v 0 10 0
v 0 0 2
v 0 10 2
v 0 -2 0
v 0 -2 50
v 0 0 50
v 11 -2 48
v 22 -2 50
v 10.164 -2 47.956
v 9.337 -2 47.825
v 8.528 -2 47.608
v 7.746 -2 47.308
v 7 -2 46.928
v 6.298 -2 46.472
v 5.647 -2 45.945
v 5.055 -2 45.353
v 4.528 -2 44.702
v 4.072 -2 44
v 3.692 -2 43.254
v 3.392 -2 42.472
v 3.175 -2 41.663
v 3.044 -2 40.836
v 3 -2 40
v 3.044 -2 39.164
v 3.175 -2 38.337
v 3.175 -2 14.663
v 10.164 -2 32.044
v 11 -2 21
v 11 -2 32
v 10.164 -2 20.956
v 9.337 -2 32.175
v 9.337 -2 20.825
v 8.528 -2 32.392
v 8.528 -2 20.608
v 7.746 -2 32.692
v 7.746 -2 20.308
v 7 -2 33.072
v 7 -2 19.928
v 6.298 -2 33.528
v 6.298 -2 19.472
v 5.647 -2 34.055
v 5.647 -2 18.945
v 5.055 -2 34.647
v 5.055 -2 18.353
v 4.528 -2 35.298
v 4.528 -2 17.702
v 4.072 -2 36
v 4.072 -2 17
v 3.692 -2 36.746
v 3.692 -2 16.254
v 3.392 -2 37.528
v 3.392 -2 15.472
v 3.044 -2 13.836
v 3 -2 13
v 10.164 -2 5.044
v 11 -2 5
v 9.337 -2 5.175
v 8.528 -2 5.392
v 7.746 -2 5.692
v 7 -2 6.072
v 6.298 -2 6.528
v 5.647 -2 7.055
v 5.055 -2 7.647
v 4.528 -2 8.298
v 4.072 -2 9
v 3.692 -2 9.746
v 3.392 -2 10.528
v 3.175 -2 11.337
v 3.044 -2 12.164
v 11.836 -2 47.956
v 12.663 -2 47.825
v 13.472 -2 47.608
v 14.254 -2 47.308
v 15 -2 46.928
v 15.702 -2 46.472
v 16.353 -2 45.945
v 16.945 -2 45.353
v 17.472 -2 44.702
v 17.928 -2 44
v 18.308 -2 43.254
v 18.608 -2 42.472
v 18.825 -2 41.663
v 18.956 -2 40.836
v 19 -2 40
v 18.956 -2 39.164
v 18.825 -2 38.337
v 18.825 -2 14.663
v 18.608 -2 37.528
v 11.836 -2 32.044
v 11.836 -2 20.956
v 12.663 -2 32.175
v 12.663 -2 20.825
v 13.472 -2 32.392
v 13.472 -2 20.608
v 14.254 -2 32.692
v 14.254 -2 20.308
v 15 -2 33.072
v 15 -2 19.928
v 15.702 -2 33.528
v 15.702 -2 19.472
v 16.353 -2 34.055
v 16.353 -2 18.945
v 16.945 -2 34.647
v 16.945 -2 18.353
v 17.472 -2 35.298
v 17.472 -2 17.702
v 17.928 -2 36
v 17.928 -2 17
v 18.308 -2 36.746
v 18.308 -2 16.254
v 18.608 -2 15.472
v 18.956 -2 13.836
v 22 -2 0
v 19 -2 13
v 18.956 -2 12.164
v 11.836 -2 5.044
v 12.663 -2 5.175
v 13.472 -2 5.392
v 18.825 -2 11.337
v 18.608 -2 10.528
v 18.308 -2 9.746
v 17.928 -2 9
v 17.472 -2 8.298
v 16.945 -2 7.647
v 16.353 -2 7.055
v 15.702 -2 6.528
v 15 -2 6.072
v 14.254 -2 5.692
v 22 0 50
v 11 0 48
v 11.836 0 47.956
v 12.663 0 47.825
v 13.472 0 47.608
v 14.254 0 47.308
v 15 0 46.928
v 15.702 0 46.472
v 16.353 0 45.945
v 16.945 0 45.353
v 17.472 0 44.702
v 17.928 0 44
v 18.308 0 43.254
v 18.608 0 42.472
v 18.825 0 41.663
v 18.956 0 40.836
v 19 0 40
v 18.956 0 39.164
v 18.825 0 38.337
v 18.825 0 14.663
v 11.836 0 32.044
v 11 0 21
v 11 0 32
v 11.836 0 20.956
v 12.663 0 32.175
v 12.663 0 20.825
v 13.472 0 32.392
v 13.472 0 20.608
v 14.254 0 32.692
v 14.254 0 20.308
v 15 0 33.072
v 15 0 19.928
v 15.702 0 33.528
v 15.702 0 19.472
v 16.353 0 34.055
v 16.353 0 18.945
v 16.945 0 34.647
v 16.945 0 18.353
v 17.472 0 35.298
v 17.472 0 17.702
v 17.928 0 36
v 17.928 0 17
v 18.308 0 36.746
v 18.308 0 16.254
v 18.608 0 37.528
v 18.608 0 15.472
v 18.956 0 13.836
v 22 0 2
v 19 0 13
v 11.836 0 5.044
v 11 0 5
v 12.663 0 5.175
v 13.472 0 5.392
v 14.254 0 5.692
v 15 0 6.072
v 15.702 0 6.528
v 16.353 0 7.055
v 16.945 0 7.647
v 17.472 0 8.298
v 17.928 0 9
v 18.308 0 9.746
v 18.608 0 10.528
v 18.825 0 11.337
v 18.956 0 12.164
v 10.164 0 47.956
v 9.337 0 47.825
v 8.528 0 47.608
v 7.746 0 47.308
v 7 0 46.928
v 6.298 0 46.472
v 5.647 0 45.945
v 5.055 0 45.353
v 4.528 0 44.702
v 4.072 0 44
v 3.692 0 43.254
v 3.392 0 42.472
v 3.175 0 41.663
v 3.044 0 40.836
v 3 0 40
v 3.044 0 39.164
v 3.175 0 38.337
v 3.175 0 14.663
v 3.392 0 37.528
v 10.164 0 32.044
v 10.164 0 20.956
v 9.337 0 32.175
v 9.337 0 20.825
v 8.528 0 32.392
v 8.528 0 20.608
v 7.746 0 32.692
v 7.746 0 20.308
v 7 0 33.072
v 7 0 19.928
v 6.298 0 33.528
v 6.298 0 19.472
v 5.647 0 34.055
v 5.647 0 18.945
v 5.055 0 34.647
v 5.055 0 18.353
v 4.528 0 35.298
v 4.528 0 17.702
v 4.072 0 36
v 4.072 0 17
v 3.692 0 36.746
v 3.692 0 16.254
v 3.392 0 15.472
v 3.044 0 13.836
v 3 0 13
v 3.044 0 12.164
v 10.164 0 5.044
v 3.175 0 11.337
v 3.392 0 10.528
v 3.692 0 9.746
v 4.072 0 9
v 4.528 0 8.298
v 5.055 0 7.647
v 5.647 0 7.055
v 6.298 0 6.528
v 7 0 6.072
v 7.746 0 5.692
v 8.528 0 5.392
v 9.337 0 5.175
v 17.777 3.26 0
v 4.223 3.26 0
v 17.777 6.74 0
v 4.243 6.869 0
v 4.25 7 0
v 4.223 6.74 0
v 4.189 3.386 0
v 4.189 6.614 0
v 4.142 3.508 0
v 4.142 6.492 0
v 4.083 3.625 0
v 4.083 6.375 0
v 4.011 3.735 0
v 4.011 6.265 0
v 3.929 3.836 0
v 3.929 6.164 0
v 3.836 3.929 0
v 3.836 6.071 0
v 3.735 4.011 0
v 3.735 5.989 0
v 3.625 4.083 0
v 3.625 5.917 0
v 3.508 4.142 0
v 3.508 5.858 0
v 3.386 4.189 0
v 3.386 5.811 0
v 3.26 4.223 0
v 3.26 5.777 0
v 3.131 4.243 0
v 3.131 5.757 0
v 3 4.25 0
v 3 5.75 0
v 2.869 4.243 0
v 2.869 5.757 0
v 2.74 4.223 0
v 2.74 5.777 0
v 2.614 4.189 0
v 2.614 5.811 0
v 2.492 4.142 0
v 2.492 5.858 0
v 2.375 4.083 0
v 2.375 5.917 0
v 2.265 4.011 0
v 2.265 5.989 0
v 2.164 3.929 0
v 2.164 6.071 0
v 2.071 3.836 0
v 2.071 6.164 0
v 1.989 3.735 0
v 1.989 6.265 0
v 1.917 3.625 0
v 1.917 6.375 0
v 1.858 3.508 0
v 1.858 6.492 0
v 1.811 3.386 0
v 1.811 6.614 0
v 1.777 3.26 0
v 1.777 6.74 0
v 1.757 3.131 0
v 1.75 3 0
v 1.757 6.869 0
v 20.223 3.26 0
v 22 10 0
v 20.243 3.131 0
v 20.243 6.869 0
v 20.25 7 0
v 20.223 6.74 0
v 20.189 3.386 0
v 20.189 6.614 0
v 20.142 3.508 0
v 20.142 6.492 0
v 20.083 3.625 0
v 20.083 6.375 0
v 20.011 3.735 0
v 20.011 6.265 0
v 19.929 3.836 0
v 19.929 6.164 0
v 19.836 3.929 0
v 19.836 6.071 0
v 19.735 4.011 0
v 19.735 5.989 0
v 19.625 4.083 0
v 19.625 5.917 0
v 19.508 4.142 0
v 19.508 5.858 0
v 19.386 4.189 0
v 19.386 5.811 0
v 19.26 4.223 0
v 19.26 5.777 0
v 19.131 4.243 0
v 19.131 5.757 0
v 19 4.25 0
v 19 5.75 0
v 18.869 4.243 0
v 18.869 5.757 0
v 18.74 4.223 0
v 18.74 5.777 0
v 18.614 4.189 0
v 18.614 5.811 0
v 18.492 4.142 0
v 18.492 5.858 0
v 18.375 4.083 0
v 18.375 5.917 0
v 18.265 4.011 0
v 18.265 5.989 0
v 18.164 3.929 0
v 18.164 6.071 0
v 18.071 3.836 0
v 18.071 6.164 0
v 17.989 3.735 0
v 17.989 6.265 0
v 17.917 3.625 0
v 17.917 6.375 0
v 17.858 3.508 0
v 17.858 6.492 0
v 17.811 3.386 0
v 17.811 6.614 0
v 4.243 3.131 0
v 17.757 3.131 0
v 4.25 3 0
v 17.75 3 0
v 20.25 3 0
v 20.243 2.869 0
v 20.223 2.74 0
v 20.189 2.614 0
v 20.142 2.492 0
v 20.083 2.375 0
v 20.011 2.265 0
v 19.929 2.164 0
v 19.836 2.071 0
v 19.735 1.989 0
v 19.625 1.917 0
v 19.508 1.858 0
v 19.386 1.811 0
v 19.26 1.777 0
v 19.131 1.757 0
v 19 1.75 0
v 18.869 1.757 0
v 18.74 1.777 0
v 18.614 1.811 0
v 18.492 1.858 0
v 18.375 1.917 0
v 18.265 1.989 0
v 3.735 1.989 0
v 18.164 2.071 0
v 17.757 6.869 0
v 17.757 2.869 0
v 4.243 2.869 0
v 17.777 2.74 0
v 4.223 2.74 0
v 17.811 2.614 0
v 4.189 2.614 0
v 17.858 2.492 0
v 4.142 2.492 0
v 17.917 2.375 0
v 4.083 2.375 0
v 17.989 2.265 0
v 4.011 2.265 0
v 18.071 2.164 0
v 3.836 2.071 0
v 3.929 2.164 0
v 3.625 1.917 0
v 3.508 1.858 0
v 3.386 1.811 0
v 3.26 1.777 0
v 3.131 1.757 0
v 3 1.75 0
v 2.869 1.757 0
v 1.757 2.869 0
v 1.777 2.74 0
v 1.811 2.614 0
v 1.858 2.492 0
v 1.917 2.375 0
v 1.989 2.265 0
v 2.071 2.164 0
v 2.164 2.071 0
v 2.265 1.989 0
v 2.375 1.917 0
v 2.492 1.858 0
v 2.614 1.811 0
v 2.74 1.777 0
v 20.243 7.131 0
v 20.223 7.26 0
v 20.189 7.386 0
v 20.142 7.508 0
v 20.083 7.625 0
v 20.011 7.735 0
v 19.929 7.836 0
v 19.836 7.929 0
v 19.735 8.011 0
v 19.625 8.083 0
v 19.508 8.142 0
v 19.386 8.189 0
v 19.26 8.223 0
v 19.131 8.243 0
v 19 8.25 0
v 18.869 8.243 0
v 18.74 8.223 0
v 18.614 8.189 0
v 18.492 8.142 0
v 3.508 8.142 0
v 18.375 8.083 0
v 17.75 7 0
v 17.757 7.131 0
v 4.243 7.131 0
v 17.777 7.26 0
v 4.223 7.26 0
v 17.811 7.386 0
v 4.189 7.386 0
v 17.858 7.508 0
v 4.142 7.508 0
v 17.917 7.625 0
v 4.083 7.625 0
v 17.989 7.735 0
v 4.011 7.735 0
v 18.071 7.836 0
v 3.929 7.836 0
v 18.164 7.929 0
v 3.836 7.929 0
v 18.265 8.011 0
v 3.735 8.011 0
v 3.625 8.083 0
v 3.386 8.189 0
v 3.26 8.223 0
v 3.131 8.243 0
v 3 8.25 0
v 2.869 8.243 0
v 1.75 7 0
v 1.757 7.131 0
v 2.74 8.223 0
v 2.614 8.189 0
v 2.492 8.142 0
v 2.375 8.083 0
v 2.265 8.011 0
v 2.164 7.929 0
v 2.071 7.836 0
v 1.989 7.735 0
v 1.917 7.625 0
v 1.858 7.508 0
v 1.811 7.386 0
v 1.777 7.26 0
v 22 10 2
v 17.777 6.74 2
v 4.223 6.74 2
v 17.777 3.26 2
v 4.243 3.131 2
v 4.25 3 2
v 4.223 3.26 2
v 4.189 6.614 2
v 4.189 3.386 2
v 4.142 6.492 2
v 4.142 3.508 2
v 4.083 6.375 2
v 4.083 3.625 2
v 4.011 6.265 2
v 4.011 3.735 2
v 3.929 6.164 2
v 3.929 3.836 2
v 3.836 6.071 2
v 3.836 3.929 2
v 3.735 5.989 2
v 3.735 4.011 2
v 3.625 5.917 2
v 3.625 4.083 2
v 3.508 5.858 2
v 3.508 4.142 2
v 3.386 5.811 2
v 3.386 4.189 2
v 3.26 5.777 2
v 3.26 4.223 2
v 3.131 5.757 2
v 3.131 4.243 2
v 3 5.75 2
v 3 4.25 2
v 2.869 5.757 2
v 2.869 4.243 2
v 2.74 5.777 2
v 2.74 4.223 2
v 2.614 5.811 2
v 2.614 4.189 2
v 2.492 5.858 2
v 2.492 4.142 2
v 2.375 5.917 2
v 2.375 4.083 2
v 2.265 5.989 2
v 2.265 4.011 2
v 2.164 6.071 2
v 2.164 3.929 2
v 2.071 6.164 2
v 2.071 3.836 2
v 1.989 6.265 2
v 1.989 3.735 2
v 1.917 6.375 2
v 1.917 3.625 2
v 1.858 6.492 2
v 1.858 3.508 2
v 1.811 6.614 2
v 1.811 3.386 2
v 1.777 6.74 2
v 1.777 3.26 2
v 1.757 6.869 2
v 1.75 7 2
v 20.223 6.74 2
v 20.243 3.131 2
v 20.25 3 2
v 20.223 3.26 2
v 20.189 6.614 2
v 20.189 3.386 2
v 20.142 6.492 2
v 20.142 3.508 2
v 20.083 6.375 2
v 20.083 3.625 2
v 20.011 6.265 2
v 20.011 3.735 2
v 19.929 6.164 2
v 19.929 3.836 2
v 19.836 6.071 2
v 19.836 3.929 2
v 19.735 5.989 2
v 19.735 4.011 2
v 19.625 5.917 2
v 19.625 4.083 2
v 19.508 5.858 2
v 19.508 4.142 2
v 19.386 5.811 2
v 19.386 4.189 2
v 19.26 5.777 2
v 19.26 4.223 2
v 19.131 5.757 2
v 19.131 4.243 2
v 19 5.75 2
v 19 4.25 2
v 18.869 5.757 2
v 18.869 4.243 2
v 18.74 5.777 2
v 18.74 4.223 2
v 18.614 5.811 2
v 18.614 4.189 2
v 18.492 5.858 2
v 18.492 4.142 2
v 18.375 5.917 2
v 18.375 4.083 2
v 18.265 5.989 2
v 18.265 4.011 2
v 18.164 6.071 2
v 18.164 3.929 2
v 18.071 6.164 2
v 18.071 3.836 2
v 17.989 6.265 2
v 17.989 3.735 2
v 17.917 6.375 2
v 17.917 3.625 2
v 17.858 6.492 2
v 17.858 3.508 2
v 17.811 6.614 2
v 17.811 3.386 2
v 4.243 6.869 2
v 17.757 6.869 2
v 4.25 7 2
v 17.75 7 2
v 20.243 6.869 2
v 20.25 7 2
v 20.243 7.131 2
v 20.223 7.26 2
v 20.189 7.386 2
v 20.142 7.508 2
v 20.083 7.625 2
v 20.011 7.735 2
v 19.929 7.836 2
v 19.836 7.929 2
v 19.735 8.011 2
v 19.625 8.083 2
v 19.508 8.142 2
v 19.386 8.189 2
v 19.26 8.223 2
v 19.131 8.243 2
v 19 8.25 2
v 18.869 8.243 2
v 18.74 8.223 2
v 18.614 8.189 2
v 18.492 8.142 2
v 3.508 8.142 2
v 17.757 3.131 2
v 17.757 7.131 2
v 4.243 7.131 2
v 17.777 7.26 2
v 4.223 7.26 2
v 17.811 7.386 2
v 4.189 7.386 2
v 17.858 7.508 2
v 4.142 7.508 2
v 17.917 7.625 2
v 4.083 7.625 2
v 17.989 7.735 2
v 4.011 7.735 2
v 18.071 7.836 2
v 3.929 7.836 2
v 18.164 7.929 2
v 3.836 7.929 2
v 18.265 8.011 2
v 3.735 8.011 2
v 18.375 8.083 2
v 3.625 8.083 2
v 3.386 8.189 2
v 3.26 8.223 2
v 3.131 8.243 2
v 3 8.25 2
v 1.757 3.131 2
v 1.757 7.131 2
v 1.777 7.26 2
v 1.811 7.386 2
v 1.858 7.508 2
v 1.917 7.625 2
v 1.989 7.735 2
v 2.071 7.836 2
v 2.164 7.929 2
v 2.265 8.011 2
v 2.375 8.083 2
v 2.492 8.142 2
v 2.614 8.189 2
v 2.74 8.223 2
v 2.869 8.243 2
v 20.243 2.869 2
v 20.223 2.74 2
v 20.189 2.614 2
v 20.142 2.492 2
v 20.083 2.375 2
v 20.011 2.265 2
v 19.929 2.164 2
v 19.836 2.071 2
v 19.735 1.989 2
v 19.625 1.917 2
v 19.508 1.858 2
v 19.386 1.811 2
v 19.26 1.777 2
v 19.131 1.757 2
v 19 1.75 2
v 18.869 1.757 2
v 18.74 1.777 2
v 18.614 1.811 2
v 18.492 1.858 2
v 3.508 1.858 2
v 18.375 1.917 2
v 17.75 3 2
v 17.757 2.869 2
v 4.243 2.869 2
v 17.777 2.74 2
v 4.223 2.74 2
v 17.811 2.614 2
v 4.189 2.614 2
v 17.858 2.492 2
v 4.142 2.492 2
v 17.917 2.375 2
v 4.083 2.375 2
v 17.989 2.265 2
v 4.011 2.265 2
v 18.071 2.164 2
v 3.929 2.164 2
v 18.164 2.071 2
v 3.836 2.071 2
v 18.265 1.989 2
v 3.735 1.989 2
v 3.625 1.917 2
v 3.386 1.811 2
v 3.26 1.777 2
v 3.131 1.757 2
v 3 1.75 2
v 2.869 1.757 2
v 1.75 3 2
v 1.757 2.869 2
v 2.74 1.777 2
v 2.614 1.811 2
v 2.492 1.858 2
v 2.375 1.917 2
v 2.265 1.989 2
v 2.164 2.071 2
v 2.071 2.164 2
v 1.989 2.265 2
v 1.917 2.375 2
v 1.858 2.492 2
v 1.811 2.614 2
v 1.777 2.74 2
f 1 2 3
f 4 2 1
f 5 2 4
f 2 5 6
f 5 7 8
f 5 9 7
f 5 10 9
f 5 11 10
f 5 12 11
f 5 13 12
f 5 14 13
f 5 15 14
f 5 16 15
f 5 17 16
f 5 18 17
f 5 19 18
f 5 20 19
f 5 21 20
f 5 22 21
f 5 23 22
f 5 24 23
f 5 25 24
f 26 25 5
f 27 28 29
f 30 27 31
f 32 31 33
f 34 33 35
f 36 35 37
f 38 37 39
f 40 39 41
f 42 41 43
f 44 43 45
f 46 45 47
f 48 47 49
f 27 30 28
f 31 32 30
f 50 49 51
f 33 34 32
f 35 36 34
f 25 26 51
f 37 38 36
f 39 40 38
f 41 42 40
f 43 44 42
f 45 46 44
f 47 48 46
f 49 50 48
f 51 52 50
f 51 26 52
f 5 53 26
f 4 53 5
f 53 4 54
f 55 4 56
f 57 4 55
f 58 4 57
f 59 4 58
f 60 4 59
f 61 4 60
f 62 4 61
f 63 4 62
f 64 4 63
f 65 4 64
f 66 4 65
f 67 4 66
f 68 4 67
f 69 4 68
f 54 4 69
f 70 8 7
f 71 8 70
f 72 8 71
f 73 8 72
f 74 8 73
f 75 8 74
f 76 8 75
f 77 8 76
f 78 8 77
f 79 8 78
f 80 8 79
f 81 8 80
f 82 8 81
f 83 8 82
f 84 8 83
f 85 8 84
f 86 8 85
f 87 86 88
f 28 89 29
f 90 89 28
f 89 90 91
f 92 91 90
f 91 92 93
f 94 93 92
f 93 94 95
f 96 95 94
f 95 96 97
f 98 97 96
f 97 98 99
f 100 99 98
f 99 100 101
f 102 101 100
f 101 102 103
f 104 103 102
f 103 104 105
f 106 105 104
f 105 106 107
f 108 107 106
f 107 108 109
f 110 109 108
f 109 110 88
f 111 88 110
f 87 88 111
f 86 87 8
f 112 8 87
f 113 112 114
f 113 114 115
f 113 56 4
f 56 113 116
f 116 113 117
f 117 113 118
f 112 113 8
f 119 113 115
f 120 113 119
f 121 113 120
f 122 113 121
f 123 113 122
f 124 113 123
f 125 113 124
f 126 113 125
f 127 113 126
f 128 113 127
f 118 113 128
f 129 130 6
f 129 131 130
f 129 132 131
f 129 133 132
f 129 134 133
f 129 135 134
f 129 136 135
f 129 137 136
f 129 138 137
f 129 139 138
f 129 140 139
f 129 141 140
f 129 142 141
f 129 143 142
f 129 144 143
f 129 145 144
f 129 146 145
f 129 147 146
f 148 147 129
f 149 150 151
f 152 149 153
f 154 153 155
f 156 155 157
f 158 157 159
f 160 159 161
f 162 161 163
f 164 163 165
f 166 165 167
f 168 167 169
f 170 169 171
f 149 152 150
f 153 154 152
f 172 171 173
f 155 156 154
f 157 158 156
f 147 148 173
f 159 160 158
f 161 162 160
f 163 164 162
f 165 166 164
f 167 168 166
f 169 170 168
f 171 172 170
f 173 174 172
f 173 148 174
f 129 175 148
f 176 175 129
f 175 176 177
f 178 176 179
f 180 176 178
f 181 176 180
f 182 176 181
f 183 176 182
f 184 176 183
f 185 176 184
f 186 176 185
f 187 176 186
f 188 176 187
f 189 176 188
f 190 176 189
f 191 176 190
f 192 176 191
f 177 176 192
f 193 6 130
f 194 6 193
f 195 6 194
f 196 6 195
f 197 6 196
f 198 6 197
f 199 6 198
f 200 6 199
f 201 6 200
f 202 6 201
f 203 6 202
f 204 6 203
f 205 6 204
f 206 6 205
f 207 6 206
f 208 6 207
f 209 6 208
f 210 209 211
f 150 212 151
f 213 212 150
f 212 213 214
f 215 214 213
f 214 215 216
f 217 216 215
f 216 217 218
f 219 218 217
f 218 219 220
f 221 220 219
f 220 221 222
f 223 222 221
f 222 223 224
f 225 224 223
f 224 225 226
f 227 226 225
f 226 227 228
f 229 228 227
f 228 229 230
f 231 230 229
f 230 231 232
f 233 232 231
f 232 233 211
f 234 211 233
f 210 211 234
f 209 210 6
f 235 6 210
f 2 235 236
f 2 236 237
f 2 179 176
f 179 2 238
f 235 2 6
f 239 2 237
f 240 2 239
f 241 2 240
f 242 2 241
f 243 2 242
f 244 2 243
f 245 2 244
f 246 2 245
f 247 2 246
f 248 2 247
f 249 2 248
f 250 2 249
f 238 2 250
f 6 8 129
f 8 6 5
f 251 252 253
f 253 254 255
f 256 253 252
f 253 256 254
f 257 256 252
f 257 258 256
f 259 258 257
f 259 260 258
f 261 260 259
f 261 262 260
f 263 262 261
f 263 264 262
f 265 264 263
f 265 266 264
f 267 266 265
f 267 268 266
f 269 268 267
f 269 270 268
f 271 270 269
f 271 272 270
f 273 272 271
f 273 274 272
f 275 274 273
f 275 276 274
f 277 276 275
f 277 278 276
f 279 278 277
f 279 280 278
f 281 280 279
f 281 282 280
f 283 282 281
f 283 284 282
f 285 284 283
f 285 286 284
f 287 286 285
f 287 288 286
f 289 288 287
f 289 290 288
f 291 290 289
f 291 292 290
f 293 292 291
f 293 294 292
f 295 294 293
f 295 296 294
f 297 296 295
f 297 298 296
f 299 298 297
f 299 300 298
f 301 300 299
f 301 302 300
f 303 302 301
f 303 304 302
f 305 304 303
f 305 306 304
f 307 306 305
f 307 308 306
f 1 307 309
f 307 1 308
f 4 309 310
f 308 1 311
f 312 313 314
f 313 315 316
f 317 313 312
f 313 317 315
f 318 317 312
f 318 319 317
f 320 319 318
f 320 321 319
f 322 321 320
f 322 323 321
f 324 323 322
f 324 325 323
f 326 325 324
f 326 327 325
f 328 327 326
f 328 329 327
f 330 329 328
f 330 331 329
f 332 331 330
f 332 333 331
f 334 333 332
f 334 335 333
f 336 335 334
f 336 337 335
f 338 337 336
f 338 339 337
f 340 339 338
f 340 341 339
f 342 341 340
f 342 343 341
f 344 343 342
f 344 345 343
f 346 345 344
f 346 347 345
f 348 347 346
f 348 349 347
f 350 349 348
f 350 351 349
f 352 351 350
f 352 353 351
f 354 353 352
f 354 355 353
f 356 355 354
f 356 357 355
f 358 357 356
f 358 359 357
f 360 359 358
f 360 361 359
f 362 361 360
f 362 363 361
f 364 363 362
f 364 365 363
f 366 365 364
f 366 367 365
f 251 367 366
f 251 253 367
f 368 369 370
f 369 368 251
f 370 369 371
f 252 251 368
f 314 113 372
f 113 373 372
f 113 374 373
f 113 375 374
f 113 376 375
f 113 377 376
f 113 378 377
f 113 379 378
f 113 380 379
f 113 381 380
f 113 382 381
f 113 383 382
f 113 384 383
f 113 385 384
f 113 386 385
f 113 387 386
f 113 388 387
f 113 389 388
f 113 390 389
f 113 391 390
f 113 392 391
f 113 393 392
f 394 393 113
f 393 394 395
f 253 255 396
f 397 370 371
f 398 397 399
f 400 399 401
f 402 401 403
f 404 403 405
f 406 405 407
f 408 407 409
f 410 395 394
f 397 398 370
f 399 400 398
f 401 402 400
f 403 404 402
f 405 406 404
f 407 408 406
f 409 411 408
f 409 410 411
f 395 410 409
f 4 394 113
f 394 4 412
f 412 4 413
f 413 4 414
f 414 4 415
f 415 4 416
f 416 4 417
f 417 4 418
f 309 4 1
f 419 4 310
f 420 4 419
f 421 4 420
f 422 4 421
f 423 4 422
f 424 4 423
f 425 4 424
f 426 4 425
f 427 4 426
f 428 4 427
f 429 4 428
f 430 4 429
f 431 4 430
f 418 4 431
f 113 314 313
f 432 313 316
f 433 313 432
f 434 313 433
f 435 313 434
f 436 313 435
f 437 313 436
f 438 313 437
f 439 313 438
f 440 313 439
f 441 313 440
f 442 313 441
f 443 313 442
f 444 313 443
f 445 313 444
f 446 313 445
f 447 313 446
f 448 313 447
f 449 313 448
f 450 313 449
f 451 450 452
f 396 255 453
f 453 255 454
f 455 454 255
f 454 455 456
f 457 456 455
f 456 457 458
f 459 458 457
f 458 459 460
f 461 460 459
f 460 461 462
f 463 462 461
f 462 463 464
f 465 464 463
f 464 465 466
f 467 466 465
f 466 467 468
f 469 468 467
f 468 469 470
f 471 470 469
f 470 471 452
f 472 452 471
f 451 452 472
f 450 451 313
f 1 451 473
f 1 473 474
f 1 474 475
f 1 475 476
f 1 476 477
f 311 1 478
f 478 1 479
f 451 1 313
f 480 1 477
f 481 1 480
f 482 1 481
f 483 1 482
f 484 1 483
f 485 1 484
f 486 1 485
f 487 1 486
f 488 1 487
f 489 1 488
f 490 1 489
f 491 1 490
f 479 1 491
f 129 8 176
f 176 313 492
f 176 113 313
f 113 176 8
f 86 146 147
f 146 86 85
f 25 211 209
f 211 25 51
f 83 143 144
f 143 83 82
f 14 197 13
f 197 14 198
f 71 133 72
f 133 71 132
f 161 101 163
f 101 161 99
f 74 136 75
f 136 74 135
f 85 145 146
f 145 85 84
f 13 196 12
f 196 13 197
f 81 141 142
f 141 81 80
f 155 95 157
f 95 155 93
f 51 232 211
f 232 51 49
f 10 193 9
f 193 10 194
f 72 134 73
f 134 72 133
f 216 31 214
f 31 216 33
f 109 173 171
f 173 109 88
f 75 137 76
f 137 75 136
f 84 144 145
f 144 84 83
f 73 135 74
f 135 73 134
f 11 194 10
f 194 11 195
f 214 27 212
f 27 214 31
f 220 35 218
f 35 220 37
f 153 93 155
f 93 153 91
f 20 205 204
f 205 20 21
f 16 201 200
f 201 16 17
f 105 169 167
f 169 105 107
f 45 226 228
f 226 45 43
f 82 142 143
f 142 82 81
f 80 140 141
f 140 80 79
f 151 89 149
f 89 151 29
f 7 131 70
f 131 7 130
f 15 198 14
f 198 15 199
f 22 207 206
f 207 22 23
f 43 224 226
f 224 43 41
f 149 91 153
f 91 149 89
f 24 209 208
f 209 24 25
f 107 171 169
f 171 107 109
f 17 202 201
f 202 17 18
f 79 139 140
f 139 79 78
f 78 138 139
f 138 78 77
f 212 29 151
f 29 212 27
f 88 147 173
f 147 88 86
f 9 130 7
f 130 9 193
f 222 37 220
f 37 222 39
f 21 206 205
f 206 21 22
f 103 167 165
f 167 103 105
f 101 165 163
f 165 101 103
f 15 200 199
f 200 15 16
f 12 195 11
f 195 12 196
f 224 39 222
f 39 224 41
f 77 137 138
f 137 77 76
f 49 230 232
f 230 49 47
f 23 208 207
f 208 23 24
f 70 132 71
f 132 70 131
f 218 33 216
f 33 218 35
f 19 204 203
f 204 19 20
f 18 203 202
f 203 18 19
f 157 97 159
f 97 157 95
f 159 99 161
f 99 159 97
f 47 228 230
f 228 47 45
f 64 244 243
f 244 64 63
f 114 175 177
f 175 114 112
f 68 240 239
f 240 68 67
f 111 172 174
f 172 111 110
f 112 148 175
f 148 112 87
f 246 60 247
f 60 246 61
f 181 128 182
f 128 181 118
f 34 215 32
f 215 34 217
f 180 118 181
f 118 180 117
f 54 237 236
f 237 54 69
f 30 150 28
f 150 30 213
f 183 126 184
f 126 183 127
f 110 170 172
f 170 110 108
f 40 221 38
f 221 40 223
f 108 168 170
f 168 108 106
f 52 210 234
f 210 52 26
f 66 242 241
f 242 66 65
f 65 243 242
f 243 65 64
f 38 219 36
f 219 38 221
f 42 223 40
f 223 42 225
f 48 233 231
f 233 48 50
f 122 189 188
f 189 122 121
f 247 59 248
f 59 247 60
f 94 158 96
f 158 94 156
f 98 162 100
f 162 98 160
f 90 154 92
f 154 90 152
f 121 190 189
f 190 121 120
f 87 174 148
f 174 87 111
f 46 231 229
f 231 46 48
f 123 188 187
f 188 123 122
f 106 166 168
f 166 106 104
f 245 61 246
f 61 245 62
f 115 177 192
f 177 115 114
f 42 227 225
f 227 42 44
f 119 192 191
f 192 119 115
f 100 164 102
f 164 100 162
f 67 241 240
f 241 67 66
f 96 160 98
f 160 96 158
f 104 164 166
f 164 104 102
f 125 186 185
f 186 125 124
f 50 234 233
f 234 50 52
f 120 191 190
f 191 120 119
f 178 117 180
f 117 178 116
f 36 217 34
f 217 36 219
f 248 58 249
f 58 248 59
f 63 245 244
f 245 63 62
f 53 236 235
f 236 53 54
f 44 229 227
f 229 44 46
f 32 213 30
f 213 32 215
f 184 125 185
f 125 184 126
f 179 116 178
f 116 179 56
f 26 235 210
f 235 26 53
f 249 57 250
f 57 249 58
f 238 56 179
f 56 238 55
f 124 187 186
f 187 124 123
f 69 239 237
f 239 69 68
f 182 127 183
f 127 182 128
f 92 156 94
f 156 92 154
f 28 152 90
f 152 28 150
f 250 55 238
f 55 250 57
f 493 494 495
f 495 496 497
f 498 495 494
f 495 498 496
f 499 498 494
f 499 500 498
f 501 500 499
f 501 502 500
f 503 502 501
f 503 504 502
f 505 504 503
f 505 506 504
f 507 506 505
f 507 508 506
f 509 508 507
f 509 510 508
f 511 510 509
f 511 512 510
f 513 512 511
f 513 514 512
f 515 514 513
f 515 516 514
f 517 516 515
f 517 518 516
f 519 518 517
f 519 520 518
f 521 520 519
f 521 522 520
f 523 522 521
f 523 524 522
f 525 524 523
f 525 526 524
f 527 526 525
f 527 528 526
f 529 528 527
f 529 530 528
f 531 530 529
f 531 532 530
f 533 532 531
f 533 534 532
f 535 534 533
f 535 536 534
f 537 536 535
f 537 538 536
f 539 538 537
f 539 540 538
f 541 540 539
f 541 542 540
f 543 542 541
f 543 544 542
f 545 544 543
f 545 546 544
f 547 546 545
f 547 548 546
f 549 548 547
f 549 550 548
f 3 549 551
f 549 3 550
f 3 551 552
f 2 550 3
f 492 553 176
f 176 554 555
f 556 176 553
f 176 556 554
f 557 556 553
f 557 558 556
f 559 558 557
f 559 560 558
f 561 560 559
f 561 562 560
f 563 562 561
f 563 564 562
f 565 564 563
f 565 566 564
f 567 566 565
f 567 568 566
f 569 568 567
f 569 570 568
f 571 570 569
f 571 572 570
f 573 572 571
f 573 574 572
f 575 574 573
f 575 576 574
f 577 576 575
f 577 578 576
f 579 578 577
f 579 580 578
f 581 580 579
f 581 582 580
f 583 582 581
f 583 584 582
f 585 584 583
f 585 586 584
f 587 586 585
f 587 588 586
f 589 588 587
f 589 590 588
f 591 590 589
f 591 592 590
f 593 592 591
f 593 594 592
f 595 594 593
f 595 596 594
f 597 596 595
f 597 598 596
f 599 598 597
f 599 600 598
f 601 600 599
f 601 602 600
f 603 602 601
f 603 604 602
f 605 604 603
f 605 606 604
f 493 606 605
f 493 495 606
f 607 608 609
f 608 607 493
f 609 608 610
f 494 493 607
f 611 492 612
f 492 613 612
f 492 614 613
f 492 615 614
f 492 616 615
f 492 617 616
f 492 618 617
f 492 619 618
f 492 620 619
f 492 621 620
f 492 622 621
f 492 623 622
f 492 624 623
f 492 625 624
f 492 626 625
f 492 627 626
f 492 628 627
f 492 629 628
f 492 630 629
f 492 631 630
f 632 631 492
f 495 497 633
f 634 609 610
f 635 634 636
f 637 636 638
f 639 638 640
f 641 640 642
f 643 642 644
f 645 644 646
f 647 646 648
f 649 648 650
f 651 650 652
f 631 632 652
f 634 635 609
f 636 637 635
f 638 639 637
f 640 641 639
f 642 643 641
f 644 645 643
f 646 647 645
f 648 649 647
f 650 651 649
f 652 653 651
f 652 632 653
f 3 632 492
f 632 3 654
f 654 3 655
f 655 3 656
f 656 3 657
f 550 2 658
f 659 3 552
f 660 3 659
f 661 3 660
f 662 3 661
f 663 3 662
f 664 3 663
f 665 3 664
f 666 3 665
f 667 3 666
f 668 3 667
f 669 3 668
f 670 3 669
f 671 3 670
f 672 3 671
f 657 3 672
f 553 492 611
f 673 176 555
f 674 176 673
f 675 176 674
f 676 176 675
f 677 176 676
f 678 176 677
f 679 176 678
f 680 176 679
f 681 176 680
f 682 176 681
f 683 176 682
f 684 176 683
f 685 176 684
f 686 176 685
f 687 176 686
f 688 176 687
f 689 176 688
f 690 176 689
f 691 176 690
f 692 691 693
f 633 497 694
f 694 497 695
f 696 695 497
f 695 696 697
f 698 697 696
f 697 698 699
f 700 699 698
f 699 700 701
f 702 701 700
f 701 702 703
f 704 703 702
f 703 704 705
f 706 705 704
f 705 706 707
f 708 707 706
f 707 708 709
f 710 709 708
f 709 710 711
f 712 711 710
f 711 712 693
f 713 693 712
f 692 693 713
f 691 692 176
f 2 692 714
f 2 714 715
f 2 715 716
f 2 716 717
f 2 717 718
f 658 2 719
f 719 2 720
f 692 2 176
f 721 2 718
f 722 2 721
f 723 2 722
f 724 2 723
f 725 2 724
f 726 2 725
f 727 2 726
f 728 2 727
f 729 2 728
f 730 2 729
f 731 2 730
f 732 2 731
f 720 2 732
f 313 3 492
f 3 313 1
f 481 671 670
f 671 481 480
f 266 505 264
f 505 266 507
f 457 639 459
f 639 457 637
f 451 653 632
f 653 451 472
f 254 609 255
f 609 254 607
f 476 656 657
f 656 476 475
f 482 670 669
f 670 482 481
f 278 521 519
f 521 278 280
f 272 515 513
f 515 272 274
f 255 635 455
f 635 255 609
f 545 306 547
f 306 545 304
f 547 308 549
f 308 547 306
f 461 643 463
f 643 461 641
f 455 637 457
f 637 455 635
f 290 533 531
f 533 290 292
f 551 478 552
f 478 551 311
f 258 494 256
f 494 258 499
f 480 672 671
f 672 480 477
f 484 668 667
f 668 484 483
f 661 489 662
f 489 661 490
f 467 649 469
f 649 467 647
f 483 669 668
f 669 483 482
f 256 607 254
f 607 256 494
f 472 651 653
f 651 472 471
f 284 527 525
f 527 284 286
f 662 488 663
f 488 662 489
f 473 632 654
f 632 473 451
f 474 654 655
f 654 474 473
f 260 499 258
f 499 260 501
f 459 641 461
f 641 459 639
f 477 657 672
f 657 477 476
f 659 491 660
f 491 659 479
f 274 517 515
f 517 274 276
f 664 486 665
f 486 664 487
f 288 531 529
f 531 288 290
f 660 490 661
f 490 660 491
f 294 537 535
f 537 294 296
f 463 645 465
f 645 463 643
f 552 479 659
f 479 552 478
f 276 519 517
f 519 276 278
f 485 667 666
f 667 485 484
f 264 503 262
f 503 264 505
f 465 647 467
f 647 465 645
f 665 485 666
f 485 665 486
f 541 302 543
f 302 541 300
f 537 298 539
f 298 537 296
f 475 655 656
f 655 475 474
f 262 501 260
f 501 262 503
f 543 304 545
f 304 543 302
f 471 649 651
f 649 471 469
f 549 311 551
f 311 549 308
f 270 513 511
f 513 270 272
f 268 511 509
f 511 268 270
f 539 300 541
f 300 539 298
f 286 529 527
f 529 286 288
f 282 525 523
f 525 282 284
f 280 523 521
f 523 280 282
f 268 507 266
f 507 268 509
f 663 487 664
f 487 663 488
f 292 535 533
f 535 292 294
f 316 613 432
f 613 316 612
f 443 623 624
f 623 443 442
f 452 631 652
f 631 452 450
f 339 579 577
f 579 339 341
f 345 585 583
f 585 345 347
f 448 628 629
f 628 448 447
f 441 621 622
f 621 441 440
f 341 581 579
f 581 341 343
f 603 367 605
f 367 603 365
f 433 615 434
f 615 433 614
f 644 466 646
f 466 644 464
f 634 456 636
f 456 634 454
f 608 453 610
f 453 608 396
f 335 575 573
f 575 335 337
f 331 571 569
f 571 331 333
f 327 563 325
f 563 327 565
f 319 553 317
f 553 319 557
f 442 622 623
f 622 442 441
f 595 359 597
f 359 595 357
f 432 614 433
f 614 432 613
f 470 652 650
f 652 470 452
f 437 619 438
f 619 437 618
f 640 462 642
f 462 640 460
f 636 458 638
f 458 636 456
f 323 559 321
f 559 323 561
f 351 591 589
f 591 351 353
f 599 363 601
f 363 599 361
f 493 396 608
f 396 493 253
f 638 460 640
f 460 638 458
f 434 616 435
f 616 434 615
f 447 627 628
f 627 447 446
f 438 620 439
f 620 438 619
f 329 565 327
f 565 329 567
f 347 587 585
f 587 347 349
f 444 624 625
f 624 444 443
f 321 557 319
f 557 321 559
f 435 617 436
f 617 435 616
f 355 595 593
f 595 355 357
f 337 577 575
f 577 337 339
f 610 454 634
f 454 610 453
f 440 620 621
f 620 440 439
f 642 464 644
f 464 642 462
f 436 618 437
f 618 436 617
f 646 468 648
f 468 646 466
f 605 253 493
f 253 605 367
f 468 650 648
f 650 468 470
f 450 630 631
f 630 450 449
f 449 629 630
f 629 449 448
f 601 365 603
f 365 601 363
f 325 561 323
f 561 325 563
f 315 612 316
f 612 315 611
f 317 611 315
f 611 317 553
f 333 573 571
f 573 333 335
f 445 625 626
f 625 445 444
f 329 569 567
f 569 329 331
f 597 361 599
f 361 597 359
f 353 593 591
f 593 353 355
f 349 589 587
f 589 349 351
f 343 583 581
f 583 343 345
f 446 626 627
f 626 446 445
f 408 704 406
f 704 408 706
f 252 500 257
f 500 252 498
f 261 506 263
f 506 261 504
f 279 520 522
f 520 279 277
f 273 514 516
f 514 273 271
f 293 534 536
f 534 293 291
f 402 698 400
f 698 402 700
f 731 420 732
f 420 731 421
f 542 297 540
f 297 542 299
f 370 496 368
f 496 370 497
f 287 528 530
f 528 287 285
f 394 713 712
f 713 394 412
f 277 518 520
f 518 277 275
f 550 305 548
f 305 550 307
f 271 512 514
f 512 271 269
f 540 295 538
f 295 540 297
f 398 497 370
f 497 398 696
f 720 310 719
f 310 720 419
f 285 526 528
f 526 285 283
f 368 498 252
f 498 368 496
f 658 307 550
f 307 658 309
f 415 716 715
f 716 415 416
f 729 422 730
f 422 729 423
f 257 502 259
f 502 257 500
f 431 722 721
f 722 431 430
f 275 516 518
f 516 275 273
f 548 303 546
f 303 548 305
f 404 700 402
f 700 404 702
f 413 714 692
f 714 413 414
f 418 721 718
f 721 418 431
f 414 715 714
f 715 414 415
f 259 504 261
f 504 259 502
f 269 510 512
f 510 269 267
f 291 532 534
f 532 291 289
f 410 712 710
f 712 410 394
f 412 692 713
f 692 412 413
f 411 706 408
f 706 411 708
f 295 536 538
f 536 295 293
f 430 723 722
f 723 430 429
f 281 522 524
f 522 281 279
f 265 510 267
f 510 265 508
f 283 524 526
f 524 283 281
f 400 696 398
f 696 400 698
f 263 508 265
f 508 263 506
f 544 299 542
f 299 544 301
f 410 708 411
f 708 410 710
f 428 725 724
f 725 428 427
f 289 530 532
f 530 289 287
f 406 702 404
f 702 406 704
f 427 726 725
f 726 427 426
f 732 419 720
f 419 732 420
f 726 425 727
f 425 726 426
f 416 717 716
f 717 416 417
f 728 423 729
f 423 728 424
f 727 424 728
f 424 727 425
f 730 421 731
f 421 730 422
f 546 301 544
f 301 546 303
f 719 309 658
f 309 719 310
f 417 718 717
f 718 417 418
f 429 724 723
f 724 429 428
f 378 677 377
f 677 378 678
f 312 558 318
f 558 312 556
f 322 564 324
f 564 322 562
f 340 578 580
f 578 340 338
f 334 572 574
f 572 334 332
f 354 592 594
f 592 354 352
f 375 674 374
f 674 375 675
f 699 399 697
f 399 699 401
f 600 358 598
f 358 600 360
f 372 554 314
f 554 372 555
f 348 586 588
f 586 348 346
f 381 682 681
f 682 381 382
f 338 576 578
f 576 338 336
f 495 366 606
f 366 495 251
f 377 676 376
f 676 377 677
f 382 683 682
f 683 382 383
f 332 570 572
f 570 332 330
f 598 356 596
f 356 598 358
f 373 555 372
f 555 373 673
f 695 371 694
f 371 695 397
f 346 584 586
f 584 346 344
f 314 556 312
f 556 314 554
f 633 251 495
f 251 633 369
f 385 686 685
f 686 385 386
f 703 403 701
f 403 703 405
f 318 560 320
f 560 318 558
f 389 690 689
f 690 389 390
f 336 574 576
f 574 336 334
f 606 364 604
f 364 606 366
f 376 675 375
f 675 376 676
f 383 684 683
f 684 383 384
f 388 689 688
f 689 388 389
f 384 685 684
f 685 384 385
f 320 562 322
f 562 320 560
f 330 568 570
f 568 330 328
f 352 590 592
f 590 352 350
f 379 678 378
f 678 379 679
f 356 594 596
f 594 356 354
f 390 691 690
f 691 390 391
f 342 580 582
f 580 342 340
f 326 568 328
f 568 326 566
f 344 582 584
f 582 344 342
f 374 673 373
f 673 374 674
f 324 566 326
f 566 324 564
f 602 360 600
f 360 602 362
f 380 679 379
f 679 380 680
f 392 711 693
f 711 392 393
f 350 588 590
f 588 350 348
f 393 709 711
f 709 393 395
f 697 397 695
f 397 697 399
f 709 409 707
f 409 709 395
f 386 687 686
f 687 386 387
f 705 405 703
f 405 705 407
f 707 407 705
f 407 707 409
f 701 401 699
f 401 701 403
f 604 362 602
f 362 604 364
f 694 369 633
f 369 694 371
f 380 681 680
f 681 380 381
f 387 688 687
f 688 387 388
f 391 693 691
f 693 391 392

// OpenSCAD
// file: wntrmute.scad
function M2() = 1;
function M25() = 1.25;
function M3() = 1.75;
function M4() = 2.1;
function PlateHeight() = 2.5;
    

module screw_hole(size, x, y, height=PlateHeight()+1) {
    union() {
       translate([x, y, -1])
       cylinder(h=5, r=size, $fn=60); 
    };
}

// x and y are the center point for the battery mount.
module battery_mount(x, y, size=M3(), rotation=0) {
    offset = 19.5 / 2;
    union() {
        screw_hole(size, x-offset, y);
        screw_hole(size, x+offset, y);
    }
}

module arduino_uno(x, y, size=M3(), rotation=0) {
    union() {
        screw_hole(size, x, y); 
        screw_hole(size, x+50.8, y-15.2);
        screw_hole(size, x+50.8, y-43.1);
        screw_hole(size, x, y-48.3);
    }
}

module robot_power_board(x, y, size=M3(), rotation=0) {
    union() {
        screw_hole(size, x, y);
        screw_hole(size, x+31.5, y);
        screw_hole(size, x, y+18.5);
        screw_hole(size, x+31.5, y+18.5);
    }
}

module raspberry_pi_zero(x, y, size=M3(), rotation=0) {
    union () {
        screw_hole(size, x, y);
        screw_hole(size, x+58, y);
        screw_hole(size, x, y+23);
        screw_hole(size, x+58, y+23);
    }
}

module raspberry_pi_3(x, y, size=M3(), rotation=0) {
    union () {
        screw_hole(size, x, y);
        screw_hole(size, x+58, y);
        screw_hole(size, x, y+49);
        screw_hole(size, x+58, y+49);
    }
}

module ultrasonic_mount(x, y, size=M3(), rotation=undef) {
    //rotate(rotation?rotation:[0,0,0])
    union() {
        screw_hole(size, x, y);
        screw_hole(size, x+13, y);
    }
}
// main file
use <wntrmute.scad>

union() {
    difference() {
        rotate([90, 0, 0]) cube([22, 50, 2]);
        rotate([90, 0, 0]) translate([11, 40, -10]) 
            cylinder(h=15, r=8, $fn=60);
        rotate([90, 0, 0]) translate([11, 13, -10])
            cylinder(h=15, r=8, $fn=60);
    }
    
    difference() {
        cube([22, 10, 2]);
        screw_hole(M25(), 3, 7);
        screw_hole(M25(), 19, 7);
        screw_hole(M25(), 3, 3);
        screw_hole(M25(), 19, 3);
    }
}
